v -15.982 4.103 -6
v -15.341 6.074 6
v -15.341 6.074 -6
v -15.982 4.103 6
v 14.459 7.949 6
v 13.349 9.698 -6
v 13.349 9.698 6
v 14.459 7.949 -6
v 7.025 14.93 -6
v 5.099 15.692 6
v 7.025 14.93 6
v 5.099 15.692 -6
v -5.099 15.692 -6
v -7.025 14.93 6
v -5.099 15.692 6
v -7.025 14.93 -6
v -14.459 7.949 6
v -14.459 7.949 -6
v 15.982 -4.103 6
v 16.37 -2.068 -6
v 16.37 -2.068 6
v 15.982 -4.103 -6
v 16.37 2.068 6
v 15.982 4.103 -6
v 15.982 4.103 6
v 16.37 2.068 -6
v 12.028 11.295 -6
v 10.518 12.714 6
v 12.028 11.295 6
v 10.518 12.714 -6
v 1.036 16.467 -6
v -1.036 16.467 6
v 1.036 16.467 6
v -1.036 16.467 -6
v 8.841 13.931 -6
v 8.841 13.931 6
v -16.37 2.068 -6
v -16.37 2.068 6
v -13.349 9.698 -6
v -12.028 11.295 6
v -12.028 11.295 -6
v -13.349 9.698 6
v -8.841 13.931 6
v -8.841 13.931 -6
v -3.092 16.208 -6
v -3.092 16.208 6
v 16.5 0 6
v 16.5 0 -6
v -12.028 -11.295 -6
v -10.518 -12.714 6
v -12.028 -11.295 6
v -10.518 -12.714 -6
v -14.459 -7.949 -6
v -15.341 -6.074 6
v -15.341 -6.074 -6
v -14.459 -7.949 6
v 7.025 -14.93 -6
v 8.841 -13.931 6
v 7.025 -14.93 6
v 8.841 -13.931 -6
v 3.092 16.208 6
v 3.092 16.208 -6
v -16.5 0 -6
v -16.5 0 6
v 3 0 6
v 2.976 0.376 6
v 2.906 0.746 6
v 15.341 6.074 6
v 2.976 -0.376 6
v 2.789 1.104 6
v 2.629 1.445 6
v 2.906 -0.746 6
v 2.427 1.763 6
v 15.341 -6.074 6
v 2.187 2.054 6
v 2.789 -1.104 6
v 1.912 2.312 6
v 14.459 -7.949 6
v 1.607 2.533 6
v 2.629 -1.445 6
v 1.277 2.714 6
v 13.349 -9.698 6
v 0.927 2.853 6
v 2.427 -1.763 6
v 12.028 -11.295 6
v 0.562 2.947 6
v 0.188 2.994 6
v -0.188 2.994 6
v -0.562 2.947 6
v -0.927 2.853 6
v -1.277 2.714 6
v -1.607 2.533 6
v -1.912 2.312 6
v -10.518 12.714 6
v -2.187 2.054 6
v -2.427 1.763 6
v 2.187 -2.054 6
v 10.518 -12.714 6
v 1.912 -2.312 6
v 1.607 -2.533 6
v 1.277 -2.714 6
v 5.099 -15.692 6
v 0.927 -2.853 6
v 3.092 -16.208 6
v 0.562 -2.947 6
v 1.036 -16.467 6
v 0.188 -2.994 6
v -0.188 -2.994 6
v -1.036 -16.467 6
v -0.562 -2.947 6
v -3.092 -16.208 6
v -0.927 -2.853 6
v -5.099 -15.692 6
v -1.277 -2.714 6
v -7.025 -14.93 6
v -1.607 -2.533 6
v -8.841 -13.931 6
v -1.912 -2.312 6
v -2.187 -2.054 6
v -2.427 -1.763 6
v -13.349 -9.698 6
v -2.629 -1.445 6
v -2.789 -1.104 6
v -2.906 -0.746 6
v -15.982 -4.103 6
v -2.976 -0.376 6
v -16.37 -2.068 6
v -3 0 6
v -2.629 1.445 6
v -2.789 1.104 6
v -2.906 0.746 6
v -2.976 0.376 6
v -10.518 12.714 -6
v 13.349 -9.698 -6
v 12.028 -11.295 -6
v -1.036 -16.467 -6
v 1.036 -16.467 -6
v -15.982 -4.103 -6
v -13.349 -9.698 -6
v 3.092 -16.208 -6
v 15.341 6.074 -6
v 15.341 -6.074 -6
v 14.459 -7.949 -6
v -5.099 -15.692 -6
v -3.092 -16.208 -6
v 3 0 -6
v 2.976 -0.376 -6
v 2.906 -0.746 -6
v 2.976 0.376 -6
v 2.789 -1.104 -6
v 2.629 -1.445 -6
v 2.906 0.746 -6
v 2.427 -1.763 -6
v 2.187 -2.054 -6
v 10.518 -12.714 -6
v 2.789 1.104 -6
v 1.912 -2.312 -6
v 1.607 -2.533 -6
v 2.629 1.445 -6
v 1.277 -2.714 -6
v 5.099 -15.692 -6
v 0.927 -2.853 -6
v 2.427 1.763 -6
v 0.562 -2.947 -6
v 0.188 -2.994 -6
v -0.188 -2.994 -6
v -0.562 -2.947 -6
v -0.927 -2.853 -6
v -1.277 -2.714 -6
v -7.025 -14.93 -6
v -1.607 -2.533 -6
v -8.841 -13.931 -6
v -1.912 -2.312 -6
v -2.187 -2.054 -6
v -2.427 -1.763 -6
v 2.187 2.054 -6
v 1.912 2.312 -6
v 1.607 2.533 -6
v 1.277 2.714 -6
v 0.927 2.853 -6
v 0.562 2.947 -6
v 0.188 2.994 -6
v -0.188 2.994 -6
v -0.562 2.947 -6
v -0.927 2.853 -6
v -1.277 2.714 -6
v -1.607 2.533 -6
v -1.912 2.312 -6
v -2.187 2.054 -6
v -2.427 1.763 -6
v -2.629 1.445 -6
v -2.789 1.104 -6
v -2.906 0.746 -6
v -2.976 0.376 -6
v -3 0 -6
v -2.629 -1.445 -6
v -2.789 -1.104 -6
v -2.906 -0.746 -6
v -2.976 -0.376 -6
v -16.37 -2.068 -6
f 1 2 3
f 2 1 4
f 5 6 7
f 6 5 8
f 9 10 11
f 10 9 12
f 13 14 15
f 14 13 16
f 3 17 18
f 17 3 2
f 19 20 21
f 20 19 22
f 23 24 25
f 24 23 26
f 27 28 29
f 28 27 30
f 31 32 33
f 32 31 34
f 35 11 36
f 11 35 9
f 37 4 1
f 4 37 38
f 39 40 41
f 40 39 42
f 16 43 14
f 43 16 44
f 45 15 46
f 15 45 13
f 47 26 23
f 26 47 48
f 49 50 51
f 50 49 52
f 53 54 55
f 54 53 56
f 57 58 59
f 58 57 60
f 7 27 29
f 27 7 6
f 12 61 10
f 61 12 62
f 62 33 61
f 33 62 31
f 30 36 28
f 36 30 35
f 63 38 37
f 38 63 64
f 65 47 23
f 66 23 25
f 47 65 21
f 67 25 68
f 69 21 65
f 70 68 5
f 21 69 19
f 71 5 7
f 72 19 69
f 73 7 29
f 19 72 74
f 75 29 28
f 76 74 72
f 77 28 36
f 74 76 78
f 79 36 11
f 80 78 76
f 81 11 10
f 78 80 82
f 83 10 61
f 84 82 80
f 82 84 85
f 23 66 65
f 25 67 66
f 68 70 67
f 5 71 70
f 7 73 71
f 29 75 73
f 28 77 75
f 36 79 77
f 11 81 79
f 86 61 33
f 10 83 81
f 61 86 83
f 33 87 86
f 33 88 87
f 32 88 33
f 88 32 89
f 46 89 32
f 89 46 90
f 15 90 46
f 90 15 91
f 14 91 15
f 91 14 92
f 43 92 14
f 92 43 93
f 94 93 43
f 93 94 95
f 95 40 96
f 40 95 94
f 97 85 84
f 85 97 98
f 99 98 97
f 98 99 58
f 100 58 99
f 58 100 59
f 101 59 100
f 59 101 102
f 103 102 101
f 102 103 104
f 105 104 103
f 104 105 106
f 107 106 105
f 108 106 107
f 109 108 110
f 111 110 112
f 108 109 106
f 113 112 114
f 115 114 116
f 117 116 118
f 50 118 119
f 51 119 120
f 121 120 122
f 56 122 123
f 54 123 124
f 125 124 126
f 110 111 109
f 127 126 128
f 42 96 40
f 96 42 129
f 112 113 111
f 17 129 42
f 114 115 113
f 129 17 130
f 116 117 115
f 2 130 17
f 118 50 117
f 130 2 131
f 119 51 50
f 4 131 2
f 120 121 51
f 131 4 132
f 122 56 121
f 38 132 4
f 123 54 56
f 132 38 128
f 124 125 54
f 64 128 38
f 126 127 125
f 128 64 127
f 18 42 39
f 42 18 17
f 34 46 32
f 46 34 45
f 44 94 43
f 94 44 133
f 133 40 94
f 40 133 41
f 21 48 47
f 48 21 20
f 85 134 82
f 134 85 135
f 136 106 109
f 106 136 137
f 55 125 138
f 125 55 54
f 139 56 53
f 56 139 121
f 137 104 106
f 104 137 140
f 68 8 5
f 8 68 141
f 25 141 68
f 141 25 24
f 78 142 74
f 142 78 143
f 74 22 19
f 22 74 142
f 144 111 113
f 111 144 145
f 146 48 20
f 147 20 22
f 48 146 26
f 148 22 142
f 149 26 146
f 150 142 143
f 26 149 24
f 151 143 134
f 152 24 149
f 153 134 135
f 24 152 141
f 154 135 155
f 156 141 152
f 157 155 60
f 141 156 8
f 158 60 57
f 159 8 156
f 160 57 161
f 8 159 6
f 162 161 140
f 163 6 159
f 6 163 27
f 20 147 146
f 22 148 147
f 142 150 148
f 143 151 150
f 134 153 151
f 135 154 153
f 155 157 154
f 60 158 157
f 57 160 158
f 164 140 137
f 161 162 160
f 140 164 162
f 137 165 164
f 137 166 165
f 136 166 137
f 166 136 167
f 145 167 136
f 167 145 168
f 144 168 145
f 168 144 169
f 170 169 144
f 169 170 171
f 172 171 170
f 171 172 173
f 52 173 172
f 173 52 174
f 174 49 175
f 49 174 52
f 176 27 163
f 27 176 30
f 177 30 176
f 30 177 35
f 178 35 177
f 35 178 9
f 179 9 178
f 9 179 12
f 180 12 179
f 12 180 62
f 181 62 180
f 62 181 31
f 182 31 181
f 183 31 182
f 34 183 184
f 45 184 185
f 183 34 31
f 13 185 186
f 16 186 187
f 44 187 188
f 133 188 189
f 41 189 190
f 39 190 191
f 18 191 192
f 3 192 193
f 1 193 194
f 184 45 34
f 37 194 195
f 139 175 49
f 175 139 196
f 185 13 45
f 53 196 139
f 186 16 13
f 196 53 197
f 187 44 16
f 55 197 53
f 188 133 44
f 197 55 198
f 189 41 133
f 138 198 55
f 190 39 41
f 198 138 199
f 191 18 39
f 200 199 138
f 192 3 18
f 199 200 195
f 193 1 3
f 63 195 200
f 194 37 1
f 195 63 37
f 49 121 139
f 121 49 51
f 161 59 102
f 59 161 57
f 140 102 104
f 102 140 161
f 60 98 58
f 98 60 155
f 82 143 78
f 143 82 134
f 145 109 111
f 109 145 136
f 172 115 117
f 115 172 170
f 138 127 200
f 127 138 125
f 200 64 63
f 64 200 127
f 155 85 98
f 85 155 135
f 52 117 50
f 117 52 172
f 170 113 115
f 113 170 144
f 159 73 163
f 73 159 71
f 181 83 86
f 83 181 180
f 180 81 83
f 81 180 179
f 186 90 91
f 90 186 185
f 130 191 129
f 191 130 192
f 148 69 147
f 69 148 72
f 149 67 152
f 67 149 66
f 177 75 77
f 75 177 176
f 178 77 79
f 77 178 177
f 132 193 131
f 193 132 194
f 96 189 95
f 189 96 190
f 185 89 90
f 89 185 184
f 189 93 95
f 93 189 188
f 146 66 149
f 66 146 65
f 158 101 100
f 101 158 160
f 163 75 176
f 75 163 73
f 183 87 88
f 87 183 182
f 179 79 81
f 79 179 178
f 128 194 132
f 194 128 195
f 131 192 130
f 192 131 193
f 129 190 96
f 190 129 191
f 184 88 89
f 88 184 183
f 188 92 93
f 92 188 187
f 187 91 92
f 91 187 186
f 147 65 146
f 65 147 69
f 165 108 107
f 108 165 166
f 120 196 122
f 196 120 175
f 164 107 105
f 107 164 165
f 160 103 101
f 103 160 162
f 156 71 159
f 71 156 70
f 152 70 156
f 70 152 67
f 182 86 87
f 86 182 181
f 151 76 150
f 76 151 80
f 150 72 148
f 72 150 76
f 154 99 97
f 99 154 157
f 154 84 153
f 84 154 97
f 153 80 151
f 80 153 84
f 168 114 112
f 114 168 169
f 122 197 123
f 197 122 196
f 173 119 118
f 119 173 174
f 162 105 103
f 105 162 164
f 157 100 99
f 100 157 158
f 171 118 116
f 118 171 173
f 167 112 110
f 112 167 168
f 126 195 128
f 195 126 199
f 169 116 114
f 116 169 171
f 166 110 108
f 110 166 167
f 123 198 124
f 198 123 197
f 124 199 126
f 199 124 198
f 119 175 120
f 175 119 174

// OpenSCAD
$fn = 50;


difference() {
	union() {
		translate(v = [0, 0, -6.0000000000]) {
			cylinder(h = 12, r = 16.5000000000);
		}
	}
	union() {
		translate(v = [0, 0, -100.0000000000]) {
			cylinder(h = 200, r = 3);
		}
	}
}
